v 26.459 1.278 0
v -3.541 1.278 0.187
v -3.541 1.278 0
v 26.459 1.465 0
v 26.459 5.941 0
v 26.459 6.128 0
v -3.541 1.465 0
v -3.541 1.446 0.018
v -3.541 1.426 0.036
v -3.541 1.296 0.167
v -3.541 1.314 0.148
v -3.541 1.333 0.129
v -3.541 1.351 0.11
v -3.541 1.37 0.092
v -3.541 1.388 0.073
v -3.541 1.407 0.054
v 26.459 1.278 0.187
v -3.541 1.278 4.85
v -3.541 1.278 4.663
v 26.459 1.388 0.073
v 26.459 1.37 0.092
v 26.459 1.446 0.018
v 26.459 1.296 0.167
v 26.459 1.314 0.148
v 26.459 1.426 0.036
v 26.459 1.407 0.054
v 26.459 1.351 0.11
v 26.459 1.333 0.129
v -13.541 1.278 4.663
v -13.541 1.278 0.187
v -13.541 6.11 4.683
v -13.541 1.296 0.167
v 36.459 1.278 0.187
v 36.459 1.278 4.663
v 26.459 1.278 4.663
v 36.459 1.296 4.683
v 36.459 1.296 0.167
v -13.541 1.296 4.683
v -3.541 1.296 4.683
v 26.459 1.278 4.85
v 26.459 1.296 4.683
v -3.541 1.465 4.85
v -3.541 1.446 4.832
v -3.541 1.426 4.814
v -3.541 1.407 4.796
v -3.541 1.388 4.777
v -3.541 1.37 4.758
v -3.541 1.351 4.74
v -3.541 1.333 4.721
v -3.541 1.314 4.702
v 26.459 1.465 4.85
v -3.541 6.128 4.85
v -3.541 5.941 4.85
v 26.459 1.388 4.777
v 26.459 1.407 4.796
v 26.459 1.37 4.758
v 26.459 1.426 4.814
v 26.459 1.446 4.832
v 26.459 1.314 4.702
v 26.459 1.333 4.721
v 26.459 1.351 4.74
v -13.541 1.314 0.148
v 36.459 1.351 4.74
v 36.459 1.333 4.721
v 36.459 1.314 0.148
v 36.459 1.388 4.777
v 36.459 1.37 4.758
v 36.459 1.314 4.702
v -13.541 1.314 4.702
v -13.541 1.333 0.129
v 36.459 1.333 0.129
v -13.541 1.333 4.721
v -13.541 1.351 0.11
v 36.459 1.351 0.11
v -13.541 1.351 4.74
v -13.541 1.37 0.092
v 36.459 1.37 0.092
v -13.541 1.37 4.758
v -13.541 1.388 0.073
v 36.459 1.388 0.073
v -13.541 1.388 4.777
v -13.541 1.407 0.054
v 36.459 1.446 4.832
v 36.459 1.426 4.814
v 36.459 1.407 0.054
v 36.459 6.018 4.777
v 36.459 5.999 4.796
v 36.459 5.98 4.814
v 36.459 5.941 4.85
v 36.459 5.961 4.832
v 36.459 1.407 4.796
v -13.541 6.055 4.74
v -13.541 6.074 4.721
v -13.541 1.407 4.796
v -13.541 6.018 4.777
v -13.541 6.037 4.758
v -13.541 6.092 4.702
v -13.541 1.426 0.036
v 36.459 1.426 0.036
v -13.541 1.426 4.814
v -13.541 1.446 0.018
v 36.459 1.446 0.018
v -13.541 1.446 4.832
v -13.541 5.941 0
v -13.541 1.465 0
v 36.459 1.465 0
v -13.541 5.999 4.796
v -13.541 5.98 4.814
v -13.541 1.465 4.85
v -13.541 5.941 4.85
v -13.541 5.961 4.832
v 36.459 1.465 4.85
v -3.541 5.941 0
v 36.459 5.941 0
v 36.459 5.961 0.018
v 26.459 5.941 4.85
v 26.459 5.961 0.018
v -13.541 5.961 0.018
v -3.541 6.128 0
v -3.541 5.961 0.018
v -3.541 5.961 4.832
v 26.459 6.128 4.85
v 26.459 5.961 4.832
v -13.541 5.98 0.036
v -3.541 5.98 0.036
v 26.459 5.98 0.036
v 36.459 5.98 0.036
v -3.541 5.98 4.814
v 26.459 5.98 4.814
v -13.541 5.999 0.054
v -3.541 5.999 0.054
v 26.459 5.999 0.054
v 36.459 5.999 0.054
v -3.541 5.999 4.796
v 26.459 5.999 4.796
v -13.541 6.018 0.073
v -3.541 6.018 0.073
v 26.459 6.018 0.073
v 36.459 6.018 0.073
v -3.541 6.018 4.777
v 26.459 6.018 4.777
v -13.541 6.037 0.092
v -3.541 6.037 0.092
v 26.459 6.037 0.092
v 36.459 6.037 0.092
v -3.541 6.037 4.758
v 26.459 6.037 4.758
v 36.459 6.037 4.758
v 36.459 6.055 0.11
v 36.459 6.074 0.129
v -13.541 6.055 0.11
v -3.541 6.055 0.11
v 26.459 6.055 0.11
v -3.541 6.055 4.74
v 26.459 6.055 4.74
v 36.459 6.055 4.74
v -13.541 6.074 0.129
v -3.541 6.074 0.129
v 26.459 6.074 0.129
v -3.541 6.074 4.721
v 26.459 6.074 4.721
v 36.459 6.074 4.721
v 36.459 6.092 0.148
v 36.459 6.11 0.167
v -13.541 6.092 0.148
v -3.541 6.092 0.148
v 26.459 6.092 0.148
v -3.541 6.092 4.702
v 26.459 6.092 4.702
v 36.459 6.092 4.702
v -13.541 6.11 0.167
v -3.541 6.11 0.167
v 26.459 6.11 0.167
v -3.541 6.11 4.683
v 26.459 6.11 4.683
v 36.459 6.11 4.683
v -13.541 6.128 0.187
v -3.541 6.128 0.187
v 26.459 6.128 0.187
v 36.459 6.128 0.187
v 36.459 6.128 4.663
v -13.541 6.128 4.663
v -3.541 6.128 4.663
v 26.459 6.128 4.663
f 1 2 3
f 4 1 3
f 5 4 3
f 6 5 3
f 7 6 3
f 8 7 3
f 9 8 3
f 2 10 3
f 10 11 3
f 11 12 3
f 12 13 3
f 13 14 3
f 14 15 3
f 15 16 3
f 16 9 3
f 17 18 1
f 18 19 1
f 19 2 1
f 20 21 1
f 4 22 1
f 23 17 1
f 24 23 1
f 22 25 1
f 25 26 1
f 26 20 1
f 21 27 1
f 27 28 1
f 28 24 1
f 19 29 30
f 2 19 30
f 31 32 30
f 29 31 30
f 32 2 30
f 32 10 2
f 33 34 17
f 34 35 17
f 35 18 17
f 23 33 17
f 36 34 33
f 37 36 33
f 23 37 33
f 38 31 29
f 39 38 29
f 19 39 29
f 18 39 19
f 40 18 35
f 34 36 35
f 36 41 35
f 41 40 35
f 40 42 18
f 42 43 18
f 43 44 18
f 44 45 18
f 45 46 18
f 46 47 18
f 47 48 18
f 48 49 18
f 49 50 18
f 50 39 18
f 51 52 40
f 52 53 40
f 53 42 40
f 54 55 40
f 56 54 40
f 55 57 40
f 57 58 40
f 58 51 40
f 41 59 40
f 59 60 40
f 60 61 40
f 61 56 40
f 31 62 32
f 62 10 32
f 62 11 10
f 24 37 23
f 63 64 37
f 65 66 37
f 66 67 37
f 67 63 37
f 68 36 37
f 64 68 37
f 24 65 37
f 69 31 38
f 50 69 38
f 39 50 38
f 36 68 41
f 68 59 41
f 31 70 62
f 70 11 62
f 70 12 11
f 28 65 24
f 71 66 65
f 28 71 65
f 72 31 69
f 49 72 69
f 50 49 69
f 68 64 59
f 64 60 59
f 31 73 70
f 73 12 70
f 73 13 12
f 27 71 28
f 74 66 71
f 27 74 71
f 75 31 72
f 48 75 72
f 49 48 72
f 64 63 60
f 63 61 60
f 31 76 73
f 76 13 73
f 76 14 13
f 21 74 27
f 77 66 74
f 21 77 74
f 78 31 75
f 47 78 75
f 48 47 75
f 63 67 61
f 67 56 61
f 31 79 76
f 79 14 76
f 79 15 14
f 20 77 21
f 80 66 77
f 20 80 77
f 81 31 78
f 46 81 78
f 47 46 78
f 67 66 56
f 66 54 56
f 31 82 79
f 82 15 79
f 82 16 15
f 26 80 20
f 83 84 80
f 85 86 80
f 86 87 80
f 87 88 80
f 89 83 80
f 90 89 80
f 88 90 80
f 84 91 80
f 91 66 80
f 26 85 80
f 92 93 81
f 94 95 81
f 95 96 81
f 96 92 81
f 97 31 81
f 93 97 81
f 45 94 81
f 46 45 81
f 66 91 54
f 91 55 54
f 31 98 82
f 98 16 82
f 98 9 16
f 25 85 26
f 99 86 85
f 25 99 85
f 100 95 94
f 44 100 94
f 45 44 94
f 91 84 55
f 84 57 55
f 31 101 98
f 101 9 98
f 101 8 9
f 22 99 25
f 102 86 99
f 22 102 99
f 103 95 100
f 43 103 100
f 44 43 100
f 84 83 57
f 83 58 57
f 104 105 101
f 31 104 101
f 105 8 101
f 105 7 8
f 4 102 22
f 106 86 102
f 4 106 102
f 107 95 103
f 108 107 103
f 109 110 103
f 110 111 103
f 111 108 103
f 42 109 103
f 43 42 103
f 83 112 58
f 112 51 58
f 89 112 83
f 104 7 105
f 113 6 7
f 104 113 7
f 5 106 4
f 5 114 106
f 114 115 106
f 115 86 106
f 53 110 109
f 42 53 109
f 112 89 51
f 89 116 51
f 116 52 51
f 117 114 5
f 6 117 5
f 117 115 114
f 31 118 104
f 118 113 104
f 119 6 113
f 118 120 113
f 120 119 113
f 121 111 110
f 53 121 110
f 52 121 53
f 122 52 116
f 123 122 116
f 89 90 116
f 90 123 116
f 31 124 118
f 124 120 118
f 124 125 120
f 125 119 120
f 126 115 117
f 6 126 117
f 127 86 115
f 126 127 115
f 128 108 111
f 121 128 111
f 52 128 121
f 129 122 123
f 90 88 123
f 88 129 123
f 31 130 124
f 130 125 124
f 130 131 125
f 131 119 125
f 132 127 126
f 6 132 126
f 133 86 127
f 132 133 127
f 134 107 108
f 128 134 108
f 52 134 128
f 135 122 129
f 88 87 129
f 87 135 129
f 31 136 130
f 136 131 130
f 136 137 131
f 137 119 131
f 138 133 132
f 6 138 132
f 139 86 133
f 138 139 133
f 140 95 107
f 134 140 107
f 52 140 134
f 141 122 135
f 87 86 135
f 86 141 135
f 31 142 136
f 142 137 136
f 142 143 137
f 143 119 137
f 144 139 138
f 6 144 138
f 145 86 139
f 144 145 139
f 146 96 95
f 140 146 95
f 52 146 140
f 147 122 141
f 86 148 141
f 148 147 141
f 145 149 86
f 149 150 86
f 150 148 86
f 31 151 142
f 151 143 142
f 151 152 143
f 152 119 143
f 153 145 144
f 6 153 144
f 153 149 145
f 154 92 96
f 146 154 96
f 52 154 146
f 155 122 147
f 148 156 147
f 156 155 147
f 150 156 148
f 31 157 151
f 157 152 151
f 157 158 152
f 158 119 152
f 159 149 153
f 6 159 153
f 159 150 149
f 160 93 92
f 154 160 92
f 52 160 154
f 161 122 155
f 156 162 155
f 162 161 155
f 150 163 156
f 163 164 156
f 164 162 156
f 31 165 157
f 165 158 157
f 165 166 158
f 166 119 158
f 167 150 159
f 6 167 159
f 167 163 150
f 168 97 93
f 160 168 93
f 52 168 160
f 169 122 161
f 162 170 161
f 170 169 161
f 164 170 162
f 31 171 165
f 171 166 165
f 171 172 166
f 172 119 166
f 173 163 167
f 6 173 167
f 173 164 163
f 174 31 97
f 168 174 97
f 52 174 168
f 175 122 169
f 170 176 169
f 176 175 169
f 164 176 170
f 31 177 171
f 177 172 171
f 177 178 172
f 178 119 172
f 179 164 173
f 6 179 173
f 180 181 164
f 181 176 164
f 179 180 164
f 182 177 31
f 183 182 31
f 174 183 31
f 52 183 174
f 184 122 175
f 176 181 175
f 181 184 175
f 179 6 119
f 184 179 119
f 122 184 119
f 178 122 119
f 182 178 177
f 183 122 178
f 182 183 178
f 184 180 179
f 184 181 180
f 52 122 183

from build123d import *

# Parameters (mm, degrees)
SKETCH_1_W          = 50
SKETCH_1_H          = 4.85
EXTRUDE_1_DEPTH     = 4.85
SKETCH_2_OUTSIDE_W  = 16.944
SKETCH_2_OUTSIDE_H  = 16.944
SKETCH_2_OUTSIDE_R  = 3.3
CUT_EXTRUDE_1_DEPTH = 10
SKETCH_3_OUTSIDE_W  = 16.944
SKETCH_3_OUTSIDE_H  = 16.944
SKETCH_3_OUTSIDE_R  = 3.3
CUT_EXTRUDE_2_DEPTH = 10


with BuildPart() as part:
    # 草图1 → 凸台-拉伸1 (new body)
    with BuildSketch(Plane.XY):
        with Locations((11.459302289, 3.703133705)):
            Rectangle(SKETCH_1_W, SKETCH_1_H)
    extrude(amount=EXTRUDE_1_DEPTH)

    # 草图2 outside → 切除-拉伸1 (cut)
    with BuildSketch(Plane.ZY.offset(13.540697711)):
        with Locations((2.425, 3.703)):
            Rectangle(SKETCH_2_OUTSIDE_W, SKETCH_2_OUTSIDE_H)
        with Locations((2.425, 3.703133705)):
            Circle(SKETCH_2_OUTSIDE_R, mode=Mode.SUBTRACT)
    extrude(amount=-CUT_EXTRUDE_1_DEPTH, mode=Mode.SUBTRACT)

    # 草图3 outside → 切除-拉伸2 (cut)
    with BuildSketch(Plane(origin=(36.459302289, 0, 0), x_dir=(0, 0, -1), z_dir=(1, 0, 0))):
        with Locations((-2.425, 3.703)):
            Rectangle(SKETCH_3_OUTSIDE_W, SKETCH_3_OUTSIDE_H)
        with Locations((-2.425, 3.703133705)):
            Circle(SKETCH_3_OUTSIDE_R, mode=Mode.SUBTRACT)
    extrude(amount=-CUT_EXTRUDE_2_DEPTH, mode=Mode.SUBTRACT)


solid = part.part
